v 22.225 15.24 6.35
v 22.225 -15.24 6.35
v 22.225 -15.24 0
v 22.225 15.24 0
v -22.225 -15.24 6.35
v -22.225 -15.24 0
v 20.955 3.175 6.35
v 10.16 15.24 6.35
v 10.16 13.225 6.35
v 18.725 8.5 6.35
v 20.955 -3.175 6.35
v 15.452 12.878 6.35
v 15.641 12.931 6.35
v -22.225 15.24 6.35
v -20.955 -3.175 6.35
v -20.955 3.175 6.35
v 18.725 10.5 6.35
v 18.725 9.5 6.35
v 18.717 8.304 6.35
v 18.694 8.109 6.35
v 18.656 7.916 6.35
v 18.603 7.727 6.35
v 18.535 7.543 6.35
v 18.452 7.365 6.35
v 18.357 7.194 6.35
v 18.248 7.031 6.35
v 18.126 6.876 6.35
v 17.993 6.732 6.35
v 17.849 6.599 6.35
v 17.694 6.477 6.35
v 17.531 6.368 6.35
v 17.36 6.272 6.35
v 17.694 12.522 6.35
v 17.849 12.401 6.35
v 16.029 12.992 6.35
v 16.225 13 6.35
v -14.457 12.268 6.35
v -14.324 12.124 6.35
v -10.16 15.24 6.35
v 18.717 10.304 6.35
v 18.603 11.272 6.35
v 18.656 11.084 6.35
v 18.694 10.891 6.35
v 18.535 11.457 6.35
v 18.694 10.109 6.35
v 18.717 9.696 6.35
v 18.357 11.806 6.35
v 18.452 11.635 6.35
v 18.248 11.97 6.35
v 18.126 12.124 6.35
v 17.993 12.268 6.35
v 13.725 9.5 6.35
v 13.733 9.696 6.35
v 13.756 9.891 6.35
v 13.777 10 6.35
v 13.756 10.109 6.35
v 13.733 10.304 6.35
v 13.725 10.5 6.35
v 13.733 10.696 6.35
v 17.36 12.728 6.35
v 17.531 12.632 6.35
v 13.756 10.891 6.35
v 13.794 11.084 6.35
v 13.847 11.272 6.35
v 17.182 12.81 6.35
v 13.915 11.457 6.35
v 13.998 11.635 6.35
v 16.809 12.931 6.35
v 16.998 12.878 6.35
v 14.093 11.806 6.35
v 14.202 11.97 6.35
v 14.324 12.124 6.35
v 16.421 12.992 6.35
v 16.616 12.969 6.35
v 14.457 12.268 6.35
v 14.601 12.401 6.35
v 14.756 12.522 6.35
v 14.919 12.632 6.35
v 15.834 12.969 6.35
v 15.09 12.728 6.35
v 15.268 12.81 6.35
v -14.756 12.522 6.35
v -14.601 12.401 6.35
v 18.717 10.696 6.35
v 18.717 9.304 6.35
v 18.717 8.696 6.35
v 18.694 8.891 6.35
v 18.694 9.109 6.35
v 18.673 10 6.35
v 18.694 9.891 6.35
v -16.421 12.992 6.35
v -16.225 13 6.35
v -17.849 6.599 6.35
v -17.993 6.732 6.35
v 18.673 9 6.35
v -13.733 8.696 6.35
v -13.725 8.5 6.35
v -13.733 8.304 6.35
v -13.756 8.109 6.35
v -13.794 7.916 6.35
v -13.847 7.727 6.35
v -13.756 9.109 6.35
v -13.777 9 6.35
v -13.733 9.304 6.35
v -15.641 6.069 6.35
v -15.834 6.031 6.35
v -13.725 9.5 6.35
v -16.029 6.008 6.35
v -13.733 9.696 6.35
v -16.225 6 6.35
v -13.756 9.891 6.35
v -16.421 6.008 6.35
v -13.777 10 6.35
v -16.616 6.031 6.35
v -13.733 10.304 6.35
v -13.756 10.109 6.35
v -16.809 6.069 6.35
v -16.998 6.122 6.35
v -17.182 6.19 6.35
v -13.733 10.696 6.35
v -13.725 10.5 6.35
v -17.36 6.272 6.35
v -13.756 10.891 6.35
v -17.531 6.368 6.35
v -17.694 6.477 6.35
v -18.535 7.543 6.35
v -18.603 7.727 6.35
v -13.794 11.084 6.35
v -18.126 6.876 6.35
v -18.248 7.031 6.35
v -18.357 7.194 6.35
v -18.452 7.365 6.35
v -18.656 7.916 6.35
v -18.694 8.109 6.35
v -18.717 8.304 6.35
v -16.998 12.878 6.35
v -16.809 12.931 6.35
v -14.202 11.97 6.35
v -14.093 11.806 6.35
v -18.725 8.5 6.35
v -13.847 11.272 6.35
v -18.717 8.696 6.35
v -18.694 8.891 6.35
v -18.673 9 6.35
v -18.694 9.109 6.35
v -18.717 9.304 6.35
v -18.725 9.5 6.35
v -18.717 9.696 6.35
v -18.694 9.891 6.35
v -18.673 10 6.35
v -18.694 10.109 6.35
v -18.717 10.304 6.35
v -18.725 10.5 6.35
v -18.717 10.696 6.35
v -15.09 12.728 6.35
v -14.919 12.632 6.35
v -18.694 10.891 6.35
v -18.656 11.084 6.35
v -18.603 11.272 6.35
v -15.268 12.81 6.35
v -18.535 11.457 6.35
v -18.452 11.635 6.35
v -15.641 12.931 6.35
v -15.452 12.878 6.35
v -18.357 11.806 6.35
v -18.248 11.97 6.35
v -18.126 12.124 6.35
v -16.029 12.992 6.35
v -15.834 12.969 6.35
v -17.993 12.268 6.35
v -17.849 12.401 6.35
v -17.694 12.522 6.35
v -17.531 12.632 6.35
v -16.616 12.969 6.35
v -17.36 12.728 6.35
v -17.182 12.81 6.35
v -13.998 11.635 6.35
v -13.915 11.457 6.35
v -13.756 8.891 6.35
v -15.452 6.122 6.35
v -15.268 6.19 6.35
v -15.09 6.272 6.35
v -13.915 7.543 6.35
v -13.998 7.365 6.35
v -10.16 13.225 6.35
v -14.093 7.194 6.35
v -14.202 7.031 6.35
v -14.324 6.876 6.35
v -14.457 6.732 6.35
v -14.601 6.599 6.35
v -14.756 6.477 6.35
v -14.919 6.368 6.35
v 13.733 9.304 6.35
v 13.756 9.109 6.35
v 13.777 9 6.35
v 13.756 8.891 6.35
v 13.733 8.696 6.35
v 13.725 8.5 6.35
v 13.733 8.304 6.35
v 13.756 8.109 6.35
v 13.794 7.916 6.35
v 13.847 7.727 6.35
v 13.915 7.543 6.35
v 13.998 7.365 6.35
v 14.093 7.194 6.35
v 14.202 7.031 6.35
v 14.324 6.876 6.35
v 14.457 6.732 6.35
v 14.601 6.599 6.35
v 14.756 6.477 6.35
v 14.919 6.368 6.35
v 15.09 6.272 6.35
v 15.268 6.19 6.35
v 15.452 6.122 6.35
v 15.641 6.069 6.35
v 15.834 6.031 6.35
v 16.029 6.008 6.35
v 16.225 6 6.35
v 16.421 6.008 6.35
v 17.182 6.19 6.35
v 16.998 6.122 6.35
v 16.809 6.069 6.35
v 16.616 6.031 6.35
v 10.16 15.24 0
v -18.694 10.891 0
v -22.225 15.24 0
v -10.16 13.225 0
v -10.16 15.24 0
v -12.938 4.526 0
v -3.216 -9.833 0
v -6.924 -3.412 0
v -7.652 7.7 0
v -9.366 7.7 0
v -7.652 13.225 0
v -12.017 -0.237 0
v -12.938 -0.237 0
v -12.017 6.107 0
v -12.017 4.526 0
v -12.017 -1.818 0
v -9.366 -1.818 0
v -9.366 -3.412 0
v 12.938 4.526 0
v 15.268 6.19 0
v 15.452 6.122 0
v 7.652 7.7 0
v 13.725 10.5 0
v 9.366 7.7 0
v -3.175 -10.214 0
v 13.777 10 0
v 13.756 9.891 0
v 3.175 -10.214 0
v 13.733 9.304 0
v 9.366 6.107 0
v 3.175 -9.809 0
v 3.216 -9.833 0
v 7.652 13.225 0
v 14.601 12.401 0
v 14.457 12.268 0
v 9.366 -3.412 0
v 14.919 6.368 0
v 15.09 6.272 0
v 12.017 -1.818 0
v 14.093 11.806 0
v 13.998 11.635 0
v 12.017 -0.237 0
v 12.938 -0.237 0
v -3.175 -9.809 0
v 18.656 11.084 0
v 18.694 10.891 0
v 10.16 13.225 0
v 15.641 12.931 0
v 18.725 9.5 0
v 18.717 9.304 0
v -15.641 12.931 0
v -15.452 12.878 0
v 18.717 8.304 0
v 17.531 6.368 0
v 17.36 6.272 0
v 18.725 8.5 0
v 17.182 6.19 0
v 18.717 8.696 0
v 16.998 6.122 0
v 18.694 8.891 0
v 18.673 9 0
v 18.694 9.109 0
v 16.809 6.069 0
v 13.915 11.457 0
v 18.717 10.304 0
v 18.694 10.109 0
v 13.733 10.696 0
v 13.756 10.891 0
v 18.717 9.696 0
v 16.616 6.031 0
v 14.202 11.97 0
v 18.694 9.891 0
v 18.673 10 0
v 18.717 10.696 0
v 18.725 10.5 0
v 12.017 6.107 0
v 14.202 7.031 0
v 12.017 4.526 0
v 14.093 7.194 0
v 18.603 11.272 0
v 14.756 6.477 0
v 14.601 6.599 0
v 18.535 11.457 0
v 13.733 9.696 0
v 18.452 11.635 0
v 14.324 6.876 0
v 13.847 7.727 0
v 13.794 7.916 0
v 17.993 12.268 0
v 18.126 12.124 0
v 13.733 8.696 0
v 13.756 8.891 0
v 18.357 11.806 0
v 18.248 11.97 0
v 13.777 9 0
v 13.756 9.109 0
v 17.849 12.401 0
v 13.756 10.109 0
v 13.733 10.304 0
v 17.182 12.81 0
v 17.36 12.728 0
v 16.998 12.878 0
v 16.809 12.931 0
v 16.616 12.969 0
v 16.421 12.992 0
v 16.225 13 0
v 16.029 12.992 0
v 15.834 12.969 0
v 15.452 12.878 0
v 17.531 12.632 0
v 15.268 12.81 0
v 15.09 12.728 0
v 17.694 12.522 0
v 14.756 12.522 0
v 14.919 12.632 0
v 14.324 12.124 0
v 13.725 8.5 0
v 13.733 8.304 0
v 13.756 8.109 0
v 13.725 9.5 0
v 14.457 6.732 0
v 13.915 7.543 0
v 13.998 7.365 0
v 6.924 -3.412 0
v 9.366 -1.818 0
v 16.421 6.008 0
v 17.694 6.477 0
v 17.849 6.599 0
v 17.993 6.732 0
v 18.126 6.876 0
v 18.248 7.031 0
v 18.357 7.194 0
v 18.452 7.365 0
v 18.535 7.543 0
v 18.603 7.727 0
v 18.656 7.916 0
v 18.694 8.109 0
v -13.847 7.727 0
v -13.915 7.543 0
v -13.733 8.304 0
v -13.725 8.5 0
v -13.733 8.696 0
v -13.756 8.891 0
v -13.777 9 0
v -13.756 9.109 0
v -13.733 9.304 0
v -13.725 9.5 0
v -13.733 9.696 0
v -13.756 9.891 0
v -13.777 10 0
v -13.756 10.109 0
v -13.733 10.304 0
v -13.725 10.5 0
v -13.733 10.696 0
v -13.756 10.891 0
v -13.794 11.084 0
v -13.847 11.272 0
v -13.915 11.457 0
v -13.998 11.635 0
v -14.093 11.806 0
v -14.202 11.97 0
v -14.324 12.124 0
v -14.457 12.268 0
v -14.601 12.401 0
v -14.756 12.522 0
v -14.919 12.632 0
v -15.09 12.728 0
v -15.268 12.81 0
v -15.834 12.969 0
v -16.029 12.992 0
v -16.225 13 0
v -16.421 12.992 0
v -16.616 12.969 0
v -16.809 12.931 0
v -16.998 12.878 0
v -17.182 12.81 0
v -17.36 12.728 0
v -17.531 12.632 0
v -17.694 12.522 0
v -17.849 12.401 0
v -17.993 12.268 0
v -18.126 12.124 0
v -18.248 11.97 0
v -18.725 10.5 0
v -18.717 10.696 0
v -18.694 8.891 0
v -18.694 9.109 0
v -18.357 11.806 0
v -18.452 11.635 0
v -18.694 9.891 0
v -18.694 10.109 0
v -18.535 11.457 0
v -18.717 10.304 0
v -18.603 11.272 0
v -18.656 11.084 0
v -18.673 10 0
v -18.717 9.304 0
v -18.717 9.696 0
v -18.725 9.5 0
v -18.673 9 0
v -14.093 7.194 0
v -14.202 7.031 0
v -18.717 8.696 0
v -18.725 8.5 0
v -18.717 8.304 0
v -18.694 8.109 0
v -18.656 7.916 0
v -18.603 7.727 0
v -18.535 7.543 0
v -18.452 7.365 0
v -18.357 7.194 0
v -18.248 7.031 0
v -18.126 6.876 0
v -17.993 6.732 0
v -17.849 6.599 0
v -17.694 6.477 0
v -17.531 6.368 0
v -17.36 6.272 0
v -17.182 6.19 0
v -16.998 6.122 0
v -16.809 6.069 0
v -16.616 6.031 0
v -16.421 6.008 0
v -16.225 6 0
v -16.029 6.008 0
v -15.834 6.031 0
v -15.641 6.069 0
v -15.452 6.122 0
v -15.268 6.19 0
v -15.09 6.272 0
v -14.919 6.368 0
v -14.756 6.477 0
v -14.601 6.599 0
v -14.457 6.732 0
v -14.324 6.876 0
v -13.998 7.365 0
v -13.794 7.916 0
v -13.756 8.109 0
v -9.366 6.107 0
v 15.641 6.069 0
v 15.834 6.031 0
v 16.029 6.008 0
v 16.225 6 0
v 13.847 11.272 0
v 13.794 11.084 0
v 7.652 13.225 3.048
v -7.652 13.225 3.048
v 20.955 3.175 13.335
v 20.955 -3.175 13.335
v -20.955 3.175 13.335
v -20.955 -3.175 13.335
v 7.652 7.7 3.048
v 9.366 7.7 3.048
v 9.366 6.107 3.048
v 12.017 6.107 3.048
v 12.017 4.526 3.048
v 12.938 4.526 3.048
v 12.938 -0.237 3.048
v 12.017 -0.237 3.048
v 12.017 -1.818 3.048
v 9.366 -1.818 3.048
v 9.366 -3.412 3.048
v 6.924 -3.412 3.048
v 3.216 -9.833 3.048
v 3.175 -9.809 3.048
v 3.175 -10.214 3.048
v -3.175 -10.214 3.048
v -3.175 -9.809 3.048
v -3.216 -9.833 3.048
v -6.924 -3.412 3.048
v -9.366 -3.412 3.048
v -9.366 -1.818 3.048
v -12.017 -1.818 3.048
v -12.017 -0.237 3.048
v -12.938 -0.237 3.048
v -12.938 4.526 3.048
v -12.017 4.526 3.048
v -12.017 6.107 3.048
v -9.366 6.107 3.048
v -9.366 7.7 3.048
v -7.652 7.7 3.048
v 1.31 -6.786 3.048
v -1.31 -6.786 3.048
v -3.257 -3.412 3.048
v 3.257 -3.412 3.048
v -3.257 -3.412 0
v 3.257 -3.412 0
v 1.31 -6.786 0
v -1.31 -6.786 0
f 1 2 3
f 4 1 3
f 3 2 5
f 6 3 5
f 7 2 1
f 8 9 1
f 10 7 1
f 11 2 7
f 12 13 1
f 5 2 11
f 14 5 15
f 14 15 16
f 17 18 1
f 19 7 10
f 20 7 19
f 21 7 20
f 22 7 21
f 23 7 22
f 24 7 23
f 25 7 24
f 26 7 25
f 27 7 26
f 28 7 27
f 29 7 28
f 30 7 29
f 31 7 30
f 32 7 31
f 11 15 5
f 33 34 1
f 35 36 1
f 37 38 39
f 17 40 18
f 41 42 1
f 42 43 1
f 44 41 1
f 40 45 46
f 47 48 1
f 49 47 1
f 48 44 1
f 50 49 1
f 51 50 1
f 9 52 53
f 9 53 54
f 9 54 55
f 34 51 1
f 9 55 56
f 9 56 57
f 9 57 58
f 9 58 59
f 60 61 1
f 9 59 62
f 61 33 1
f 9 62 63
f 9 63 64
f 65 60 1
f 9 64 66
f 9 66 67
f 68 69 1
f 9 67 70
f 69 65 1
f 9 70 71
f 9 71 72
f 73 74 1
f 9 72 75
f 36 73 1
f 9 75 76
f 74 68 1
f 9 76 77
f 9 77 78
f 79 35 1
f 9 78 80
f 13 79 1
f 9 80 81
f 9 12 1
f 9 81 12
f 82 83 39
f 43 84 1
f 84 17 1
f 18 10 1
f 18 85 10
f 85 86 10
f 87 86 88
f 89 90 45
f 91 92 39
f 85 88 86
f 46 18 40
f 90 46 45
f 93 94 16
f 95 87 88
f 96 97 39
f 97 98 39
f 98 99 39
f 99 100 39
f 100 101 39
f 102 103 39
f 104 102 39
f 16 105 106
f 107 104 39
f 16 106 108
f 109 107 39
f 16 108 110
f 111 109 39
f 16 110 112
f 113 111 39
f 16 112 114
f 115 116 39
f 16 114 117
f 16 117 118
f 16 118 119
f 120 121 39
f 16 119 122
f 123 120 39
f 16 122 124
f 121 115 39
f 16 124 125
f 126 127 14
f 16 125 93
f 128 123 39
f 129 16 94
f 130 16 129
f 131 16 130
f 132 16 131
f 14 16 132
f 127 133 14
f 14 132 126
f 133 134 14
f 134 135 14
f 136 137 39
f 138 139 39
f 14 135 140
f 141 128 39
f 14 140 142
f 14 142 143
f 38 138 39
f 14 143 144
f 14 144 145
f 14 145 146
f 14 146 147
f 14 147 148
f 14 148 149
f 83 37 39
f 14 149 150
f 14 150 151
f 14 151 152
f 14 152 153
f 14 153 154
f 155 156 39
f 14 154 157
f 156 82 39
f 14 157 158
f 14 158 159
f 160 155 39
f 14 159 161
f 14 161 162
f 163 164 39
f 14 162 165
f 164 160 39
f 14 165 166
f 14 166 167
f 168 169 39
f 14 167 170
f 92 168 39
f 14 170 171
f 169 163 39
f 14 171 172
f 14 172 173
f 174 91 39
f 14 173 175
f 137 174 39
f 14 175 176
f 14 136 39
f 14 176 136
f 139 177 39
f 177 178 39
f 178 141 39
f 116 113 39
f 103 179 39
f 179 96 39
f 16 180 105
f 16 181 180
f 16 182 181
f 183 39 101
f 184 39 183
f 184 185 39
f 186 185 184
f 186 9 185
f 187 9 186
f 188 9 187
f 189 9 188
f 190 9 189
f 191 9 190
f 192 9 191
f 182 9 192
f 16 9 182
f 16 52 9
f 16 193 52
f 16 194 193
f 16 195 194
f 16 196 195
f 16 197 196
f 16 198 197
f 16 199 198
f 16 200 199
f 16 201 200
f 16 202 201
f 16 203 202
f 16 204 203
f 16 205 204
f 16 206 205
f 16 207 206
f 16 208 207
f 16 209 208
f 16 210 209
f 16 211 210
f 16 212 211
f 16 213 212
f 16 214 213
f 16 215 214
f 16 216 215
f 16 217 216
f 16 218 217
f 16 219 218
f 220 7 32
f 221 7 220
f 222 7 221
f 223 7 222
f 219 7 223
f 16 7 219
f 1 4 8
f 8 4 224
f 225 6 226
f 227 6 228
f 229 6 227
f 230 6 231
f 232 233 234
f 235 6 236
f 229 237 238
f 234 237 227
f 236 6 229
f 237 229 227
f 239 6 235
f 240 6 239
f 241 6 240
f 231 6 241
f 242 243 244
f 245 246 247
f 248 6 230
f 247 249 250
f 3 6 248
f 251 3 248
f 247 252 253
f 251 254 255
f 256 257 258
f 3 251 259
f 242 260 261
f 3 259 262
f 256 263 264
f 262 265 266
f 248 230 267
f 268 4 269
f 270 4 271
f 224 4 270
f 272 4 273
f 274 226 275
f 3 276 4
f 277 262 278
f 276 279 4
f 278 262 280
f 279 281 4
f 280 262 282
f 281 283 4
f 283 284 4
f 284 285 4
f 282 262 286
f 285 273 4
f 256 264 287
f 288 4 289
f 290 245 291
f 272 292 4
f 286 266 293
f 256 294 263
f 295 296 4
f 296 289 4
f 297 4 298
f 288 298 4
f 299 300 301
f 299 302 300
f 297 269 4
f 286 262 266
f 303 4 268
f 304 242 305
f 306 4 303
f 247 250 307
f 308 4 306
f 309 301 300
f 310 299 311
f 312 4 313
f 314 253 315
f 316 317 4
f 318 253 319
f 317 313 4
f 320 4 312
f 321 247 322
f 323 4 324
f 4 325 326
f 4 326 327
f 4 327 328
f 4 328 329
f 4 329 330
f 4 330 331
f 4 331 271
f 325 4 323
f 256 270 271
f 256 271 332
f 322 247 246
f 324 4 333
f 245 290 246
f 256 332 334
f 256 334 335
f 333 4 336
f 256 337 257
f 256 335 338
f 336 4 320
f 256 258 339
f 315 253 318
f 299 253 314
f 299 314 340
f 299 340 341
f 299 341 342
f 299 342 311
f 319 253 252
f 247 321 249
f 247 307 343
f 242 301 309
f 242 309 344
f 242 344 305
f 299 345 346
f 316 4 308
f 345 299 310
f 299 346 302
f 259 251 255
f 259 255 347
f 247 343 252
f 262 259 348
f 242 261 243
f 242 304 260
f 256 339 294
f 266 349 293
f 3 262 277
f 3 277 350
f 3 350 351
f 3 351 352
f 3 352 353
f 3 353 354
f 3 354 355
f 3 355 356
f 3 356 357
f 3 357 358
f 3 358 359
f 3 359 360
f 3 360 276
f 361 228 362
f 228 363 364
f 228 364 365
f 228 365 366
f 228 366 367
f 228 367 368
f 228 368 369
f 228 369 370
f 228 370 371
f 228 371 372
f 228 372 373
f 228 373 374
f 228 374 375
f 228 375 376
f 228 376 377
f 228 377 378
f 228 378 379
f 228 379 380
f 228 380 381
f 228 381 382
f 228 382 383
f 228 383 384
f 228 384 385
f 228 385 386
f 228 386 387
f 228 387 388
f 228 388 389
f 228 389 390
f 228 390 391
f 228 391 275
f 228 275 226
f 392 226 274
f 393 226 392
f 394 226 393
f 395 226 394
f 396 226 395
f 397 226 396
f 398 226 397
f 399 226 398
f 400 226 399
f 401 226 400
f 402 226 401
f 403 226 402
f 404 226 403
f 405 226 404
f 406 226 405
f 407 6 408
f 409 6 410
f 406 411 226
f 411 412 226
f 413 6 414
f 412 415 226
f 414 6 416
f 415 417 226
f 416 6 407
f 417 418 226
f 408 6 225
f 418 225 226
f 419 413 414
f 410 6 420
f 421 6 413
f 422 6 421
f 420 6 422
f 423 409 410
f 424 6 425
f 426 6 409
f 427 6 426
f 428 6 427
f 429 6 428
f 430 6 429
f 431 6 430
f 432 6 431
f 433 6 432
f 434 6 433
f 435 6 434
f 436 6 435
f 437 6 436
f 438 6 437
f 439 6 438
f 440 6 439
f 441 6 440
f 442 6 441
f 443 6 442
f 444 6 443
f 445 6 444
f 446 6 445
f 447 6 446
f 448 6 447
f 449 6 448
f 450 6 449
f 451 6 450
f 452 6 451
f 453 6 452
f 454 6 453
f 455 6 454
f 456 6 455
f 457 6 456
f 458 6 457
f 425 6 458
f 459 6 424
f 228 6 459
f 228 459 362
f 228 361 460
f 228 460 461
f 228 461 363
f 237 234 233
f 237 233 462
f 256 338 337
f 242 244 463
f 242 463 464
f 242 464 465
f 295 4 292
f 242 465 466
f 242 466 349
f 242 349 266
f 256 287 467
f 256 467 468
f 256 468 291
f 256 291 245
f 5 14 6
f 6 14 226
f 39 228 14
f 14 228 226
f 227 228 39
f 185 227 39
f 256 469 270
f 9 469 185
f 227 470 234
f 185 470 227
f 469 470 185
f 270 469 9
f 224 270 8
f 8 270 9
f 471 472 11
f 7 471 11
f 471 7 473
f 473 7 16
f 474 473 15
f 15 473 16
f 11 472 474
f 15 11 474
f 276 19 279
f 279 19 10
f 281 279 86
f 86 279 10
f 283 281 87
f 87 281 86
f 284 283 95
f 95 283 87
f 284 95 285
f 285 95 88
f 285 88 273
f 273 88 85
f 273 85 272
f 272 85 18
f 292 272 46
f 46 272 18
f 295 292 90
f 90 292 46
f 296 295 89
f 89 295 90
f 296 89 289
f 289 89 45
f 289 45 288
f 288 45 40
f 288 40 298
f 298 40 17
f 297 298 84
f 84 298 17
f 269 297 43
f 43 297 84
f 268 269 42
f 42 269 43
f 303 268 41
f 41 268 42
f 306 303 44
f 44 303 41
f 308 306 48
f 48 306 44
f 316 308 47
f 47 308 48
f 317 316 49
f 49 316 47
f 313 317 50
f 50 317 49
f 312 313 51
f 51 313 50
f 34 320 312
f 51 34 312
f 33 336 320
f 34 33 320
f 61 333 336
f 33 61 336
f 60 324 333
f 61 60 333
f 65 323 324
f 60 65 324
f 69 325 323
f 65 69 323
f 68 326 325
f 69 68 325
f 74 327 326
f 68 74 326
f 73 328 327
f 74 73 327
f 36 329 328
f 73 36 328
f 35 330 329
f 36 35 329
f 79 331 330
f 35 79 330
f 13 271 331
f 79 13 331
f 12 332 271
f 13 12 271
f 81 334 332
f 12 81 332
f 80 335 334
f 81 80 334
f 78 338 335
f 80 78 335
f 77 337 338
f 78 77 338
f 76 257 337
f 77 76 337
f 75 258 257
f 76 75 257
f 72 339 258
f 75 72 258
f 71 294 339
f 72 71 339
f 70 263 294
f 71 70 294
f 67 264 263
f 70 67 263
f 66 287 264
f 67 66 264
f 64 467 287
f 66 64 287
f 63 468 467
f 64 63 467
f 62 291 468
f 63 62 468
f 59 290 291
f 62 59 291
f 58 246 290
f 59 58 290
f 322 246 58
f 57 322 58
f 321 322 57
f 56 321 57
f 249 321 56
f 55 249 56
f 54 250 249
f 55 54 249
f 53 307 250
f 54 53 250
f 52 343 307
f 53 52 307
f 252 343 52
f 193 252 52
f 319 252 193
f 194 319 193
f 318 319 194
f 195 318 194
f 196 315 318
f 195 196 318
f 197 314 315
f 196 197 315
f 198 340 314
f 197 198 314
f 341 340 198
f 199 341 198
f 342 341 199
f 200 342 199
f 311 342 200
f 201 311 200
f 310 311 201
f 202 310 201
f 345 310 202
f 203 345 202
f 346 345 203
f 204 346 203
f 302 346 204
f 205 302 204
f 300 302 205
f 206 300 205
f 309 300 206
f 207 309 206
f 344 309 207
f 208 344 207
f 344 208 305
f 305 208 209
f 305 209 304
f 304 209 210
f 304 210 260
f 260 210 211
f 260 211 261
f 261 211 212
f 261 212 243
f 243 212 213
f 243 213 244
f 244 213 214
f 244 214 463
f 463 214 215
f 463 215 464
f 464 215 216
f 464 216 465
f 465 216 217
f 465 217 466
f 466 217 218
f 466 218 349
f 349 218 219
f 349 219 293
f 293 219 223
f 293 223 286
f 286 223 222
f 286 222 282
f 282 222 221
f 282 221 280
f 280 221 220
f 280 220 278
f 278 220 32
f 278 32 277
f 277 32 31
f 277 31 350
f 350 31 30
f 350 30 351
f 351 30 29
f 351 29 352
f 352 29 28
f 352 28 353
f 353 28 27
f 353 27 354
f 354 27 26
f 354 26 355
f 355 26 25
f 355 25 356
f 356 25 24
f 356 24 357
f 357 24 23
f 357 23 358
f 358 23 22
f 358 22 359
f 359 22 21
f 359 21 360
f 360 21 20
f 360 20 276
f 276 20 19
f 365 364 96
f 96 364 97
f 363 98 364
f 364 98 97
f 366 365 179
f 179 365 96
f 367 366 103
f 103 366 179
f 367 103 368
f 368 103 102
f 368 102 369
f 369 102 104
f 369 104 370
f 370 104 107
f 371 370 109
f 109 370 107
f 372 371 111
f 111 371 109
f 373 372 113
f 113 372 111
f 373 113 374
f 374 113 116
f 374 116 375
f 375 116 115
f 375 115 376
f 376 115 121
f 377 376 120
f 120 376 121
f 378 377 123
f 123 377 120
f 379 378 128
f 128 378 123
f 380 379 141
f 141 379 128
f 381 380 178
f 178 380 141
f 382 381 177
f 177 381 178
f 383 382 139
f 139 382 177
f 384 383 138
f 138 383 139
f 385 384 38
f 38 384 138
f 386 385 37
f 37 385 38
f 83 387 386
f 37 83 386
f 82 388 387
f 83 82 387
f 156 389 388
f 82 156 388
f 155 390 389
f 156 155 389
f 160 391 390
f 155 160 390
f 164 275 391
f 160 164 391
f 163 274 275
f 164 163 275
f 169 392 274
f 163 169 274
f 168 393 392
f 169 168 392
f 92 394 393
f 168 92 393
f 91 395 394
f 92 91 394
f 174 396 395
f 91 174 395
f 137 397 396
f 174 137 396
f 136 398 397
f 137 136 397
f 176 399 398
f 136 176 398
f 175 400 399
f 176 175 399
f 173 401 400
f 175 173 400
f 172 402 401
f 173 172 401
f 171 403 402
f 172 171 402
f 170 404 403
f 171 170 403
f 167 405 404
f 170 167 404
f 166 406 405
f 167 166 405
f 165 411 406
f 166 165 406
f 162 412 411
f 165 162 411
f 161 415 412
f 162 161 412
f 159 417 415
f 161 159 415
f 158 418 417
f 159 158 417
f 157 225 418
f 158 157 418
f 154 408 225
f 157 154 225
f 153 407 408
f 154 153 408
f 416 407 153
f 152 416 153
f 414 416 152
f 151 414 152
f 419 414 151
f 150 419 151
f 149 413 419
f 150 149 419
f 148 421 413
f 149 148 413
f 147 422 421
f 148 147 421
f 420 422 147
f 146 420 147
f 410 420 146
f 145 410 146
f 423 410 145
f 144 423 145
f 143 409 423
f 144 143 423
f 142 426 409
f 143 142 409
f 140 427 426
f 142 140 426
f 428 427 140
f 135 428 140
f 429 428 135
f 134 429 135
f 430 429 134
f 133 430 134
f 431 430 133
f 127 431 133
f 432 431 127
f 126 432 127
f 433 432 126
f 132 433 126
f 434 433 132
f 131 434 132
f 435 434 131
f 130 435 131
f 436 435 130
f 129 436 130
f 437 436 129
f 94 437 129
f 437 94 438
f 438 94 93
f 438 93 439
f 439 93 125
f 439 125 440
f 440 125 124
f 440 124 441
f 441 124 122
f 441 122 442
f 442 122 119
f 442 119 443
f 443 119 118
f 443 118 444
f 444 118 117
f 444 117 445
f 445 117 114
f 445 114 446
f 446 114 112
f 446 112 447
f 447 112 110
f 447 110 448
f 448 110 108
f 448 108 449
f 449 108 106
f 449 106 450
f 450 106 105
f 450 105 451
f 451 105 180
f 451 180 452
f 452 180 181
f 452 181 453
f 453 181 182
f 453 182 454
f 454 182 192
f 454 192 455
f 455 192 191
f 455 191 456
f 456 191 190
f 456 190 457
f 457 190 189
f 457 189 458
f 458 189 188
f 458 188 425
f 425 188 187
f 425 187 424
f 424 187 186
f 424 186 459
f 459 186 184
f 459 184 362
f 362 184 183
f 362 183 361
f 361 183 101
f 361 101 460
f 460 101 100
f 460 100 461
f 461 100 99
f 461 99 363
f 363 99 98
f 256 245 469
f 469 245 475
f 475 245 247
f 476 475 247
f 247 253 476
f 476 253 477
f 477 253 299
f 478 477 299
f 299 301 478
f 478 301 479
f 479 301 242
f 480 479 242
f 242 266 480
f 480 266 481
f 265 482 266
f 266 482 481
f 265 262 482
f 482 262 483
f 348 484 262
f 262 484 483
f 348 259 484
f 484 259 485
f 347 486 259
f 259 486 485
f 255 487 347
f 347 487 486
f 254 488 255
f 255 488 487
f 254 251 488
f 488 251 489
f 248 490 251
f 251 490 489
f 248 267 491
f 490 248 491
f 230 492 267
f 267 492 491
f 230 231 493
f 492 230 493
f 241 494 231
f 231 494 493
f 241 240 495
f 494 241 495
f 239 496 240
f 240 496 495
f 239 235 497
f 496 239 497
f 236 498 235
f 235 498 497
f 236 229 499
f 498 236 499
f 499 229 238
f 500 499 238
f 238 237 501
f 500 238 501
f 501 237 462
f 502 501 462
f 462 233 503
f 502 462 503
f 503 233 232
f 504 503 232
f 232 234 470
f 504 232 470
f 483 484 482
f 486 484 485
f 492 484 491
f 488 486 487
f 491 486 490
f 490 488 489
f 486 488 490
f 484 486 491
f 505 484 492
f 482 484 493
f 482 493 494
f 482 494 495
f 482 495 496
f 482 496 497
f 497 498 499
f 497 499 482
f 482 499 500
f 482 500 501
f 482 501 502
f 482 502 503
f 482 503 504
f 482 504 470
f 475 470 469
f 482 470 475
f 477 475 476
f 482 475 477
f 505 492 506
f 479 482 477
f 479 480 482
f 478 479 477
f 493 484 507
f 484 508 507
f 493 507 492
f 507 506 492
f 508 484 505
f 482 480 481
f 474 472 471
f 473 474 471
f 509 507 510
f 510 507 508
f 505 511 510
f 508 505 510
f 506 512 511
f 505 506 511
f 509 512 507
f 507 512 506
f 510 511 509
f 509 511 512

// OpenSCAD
// Units are in inches, so just multiply everything by the conversion ratio
mm=25.4;

module key() {
	thickness=0.25;
	// Top of loop
	translate([0, 0.5, 0])
		cube([0.25*mm, 0.135*mm, thickness*mm], center=true);

	// Bottom of loop
	translate([0, (0.15625+0.166)*mm, 0])
		cube([0.6*mm, 0.125*mm, thickness*mm], center=true);

	// Left side of loop
	translate([0.16*mm, 0.15*mm, 0])
		rotate([0, 0, 60])
			cube([0.35*mm, 0.125*mm, thickness*mm], center=true);
	// Right side of loop
	translate([-0.16*mm, 0.15*mm, 0])
		rotate([0, 0, -60])
			cube([0.35*mm, 0.125*mm, thickness*mm], center=true);

	// Key head
	translate([0, (0.365+0.1875/2-0.02)*mm, 0]) {
		cube([0.7375*mm, 0.4375*mm, thickness*mm], center=true);
		cube([0.94625*mm, 0.312*mm, thickness*mm], center=true);
		cube([1.01875*mm, 0.1875*mm, thickness*mm], center=true);
	}

	// Key blade
	translate([0, (0.375+1.25/2)*mm, 0])
		cube([0.6025*mm, 1.25*mm, thickness*mm], center=true);

	// Extra width at bottom of jig
	translate([0, (0.875+1.25/2)*mm, 0])
		 cube([0.8*mm, 1.25*mm, 1*mm], center=true);

}

module jigBase() {
		cube([1.75*mm, 1.2*mm, 0.25*mm], center=true);
}

module jigBottom() {
	difference() {
		jigBase();
		translate([0, -9, 0.25*mm-0.06*mm*2]) key();
	}
}

module jigCap() {
	difference() {
		union() {
			cube([1.75*mm-2, 0.25*mm, 0.45*mm-2], center=true);
			for(x = [-1, 1]) {
				translate([(1.75*mm/2-6)*x, 0, -0.45*mm/2+1.5]) cylinder(r=0.35*mm/2, h=0.35*mm, $fn=80);
			}
		}
		translate([0, -9.5, -0.10*mm]) {
			jigBottom();
		}
		translate([0, 0, -0.07*mm]) cube([1*mm, 1*mm, 0.06*mm], center=true);
	}
}

/* translate([0, 1*mm, (0.45*mm-2)/2]) difference() {
	rotate([0, 180, 0]) jigCap();
	for(x = [-1, 1]) {
		translate([(1.75*mm/2-6)*x, 0, -5]) cylinder(r=2.5, h=10, $fn=80);
	}
}*/

translate([0, 0, 0.25*mm]) rotate([0, 180, 0]) {
translate([0, 0, 0.25*mm/2]) difference() {
		jigBottom();
		for(x = [-1, 1], y = [-1, 0, 1]) {
			translate([(1.75*mm/2-6)*x, 9.5+y, -5]) cylinder(r=2.5, h=10, $fn=80);
		}
	}

	translate([0, 0, -0.1*mm]) cube([1.65*mm, 0.25*mm, 0.35*mm], center=true);
}
